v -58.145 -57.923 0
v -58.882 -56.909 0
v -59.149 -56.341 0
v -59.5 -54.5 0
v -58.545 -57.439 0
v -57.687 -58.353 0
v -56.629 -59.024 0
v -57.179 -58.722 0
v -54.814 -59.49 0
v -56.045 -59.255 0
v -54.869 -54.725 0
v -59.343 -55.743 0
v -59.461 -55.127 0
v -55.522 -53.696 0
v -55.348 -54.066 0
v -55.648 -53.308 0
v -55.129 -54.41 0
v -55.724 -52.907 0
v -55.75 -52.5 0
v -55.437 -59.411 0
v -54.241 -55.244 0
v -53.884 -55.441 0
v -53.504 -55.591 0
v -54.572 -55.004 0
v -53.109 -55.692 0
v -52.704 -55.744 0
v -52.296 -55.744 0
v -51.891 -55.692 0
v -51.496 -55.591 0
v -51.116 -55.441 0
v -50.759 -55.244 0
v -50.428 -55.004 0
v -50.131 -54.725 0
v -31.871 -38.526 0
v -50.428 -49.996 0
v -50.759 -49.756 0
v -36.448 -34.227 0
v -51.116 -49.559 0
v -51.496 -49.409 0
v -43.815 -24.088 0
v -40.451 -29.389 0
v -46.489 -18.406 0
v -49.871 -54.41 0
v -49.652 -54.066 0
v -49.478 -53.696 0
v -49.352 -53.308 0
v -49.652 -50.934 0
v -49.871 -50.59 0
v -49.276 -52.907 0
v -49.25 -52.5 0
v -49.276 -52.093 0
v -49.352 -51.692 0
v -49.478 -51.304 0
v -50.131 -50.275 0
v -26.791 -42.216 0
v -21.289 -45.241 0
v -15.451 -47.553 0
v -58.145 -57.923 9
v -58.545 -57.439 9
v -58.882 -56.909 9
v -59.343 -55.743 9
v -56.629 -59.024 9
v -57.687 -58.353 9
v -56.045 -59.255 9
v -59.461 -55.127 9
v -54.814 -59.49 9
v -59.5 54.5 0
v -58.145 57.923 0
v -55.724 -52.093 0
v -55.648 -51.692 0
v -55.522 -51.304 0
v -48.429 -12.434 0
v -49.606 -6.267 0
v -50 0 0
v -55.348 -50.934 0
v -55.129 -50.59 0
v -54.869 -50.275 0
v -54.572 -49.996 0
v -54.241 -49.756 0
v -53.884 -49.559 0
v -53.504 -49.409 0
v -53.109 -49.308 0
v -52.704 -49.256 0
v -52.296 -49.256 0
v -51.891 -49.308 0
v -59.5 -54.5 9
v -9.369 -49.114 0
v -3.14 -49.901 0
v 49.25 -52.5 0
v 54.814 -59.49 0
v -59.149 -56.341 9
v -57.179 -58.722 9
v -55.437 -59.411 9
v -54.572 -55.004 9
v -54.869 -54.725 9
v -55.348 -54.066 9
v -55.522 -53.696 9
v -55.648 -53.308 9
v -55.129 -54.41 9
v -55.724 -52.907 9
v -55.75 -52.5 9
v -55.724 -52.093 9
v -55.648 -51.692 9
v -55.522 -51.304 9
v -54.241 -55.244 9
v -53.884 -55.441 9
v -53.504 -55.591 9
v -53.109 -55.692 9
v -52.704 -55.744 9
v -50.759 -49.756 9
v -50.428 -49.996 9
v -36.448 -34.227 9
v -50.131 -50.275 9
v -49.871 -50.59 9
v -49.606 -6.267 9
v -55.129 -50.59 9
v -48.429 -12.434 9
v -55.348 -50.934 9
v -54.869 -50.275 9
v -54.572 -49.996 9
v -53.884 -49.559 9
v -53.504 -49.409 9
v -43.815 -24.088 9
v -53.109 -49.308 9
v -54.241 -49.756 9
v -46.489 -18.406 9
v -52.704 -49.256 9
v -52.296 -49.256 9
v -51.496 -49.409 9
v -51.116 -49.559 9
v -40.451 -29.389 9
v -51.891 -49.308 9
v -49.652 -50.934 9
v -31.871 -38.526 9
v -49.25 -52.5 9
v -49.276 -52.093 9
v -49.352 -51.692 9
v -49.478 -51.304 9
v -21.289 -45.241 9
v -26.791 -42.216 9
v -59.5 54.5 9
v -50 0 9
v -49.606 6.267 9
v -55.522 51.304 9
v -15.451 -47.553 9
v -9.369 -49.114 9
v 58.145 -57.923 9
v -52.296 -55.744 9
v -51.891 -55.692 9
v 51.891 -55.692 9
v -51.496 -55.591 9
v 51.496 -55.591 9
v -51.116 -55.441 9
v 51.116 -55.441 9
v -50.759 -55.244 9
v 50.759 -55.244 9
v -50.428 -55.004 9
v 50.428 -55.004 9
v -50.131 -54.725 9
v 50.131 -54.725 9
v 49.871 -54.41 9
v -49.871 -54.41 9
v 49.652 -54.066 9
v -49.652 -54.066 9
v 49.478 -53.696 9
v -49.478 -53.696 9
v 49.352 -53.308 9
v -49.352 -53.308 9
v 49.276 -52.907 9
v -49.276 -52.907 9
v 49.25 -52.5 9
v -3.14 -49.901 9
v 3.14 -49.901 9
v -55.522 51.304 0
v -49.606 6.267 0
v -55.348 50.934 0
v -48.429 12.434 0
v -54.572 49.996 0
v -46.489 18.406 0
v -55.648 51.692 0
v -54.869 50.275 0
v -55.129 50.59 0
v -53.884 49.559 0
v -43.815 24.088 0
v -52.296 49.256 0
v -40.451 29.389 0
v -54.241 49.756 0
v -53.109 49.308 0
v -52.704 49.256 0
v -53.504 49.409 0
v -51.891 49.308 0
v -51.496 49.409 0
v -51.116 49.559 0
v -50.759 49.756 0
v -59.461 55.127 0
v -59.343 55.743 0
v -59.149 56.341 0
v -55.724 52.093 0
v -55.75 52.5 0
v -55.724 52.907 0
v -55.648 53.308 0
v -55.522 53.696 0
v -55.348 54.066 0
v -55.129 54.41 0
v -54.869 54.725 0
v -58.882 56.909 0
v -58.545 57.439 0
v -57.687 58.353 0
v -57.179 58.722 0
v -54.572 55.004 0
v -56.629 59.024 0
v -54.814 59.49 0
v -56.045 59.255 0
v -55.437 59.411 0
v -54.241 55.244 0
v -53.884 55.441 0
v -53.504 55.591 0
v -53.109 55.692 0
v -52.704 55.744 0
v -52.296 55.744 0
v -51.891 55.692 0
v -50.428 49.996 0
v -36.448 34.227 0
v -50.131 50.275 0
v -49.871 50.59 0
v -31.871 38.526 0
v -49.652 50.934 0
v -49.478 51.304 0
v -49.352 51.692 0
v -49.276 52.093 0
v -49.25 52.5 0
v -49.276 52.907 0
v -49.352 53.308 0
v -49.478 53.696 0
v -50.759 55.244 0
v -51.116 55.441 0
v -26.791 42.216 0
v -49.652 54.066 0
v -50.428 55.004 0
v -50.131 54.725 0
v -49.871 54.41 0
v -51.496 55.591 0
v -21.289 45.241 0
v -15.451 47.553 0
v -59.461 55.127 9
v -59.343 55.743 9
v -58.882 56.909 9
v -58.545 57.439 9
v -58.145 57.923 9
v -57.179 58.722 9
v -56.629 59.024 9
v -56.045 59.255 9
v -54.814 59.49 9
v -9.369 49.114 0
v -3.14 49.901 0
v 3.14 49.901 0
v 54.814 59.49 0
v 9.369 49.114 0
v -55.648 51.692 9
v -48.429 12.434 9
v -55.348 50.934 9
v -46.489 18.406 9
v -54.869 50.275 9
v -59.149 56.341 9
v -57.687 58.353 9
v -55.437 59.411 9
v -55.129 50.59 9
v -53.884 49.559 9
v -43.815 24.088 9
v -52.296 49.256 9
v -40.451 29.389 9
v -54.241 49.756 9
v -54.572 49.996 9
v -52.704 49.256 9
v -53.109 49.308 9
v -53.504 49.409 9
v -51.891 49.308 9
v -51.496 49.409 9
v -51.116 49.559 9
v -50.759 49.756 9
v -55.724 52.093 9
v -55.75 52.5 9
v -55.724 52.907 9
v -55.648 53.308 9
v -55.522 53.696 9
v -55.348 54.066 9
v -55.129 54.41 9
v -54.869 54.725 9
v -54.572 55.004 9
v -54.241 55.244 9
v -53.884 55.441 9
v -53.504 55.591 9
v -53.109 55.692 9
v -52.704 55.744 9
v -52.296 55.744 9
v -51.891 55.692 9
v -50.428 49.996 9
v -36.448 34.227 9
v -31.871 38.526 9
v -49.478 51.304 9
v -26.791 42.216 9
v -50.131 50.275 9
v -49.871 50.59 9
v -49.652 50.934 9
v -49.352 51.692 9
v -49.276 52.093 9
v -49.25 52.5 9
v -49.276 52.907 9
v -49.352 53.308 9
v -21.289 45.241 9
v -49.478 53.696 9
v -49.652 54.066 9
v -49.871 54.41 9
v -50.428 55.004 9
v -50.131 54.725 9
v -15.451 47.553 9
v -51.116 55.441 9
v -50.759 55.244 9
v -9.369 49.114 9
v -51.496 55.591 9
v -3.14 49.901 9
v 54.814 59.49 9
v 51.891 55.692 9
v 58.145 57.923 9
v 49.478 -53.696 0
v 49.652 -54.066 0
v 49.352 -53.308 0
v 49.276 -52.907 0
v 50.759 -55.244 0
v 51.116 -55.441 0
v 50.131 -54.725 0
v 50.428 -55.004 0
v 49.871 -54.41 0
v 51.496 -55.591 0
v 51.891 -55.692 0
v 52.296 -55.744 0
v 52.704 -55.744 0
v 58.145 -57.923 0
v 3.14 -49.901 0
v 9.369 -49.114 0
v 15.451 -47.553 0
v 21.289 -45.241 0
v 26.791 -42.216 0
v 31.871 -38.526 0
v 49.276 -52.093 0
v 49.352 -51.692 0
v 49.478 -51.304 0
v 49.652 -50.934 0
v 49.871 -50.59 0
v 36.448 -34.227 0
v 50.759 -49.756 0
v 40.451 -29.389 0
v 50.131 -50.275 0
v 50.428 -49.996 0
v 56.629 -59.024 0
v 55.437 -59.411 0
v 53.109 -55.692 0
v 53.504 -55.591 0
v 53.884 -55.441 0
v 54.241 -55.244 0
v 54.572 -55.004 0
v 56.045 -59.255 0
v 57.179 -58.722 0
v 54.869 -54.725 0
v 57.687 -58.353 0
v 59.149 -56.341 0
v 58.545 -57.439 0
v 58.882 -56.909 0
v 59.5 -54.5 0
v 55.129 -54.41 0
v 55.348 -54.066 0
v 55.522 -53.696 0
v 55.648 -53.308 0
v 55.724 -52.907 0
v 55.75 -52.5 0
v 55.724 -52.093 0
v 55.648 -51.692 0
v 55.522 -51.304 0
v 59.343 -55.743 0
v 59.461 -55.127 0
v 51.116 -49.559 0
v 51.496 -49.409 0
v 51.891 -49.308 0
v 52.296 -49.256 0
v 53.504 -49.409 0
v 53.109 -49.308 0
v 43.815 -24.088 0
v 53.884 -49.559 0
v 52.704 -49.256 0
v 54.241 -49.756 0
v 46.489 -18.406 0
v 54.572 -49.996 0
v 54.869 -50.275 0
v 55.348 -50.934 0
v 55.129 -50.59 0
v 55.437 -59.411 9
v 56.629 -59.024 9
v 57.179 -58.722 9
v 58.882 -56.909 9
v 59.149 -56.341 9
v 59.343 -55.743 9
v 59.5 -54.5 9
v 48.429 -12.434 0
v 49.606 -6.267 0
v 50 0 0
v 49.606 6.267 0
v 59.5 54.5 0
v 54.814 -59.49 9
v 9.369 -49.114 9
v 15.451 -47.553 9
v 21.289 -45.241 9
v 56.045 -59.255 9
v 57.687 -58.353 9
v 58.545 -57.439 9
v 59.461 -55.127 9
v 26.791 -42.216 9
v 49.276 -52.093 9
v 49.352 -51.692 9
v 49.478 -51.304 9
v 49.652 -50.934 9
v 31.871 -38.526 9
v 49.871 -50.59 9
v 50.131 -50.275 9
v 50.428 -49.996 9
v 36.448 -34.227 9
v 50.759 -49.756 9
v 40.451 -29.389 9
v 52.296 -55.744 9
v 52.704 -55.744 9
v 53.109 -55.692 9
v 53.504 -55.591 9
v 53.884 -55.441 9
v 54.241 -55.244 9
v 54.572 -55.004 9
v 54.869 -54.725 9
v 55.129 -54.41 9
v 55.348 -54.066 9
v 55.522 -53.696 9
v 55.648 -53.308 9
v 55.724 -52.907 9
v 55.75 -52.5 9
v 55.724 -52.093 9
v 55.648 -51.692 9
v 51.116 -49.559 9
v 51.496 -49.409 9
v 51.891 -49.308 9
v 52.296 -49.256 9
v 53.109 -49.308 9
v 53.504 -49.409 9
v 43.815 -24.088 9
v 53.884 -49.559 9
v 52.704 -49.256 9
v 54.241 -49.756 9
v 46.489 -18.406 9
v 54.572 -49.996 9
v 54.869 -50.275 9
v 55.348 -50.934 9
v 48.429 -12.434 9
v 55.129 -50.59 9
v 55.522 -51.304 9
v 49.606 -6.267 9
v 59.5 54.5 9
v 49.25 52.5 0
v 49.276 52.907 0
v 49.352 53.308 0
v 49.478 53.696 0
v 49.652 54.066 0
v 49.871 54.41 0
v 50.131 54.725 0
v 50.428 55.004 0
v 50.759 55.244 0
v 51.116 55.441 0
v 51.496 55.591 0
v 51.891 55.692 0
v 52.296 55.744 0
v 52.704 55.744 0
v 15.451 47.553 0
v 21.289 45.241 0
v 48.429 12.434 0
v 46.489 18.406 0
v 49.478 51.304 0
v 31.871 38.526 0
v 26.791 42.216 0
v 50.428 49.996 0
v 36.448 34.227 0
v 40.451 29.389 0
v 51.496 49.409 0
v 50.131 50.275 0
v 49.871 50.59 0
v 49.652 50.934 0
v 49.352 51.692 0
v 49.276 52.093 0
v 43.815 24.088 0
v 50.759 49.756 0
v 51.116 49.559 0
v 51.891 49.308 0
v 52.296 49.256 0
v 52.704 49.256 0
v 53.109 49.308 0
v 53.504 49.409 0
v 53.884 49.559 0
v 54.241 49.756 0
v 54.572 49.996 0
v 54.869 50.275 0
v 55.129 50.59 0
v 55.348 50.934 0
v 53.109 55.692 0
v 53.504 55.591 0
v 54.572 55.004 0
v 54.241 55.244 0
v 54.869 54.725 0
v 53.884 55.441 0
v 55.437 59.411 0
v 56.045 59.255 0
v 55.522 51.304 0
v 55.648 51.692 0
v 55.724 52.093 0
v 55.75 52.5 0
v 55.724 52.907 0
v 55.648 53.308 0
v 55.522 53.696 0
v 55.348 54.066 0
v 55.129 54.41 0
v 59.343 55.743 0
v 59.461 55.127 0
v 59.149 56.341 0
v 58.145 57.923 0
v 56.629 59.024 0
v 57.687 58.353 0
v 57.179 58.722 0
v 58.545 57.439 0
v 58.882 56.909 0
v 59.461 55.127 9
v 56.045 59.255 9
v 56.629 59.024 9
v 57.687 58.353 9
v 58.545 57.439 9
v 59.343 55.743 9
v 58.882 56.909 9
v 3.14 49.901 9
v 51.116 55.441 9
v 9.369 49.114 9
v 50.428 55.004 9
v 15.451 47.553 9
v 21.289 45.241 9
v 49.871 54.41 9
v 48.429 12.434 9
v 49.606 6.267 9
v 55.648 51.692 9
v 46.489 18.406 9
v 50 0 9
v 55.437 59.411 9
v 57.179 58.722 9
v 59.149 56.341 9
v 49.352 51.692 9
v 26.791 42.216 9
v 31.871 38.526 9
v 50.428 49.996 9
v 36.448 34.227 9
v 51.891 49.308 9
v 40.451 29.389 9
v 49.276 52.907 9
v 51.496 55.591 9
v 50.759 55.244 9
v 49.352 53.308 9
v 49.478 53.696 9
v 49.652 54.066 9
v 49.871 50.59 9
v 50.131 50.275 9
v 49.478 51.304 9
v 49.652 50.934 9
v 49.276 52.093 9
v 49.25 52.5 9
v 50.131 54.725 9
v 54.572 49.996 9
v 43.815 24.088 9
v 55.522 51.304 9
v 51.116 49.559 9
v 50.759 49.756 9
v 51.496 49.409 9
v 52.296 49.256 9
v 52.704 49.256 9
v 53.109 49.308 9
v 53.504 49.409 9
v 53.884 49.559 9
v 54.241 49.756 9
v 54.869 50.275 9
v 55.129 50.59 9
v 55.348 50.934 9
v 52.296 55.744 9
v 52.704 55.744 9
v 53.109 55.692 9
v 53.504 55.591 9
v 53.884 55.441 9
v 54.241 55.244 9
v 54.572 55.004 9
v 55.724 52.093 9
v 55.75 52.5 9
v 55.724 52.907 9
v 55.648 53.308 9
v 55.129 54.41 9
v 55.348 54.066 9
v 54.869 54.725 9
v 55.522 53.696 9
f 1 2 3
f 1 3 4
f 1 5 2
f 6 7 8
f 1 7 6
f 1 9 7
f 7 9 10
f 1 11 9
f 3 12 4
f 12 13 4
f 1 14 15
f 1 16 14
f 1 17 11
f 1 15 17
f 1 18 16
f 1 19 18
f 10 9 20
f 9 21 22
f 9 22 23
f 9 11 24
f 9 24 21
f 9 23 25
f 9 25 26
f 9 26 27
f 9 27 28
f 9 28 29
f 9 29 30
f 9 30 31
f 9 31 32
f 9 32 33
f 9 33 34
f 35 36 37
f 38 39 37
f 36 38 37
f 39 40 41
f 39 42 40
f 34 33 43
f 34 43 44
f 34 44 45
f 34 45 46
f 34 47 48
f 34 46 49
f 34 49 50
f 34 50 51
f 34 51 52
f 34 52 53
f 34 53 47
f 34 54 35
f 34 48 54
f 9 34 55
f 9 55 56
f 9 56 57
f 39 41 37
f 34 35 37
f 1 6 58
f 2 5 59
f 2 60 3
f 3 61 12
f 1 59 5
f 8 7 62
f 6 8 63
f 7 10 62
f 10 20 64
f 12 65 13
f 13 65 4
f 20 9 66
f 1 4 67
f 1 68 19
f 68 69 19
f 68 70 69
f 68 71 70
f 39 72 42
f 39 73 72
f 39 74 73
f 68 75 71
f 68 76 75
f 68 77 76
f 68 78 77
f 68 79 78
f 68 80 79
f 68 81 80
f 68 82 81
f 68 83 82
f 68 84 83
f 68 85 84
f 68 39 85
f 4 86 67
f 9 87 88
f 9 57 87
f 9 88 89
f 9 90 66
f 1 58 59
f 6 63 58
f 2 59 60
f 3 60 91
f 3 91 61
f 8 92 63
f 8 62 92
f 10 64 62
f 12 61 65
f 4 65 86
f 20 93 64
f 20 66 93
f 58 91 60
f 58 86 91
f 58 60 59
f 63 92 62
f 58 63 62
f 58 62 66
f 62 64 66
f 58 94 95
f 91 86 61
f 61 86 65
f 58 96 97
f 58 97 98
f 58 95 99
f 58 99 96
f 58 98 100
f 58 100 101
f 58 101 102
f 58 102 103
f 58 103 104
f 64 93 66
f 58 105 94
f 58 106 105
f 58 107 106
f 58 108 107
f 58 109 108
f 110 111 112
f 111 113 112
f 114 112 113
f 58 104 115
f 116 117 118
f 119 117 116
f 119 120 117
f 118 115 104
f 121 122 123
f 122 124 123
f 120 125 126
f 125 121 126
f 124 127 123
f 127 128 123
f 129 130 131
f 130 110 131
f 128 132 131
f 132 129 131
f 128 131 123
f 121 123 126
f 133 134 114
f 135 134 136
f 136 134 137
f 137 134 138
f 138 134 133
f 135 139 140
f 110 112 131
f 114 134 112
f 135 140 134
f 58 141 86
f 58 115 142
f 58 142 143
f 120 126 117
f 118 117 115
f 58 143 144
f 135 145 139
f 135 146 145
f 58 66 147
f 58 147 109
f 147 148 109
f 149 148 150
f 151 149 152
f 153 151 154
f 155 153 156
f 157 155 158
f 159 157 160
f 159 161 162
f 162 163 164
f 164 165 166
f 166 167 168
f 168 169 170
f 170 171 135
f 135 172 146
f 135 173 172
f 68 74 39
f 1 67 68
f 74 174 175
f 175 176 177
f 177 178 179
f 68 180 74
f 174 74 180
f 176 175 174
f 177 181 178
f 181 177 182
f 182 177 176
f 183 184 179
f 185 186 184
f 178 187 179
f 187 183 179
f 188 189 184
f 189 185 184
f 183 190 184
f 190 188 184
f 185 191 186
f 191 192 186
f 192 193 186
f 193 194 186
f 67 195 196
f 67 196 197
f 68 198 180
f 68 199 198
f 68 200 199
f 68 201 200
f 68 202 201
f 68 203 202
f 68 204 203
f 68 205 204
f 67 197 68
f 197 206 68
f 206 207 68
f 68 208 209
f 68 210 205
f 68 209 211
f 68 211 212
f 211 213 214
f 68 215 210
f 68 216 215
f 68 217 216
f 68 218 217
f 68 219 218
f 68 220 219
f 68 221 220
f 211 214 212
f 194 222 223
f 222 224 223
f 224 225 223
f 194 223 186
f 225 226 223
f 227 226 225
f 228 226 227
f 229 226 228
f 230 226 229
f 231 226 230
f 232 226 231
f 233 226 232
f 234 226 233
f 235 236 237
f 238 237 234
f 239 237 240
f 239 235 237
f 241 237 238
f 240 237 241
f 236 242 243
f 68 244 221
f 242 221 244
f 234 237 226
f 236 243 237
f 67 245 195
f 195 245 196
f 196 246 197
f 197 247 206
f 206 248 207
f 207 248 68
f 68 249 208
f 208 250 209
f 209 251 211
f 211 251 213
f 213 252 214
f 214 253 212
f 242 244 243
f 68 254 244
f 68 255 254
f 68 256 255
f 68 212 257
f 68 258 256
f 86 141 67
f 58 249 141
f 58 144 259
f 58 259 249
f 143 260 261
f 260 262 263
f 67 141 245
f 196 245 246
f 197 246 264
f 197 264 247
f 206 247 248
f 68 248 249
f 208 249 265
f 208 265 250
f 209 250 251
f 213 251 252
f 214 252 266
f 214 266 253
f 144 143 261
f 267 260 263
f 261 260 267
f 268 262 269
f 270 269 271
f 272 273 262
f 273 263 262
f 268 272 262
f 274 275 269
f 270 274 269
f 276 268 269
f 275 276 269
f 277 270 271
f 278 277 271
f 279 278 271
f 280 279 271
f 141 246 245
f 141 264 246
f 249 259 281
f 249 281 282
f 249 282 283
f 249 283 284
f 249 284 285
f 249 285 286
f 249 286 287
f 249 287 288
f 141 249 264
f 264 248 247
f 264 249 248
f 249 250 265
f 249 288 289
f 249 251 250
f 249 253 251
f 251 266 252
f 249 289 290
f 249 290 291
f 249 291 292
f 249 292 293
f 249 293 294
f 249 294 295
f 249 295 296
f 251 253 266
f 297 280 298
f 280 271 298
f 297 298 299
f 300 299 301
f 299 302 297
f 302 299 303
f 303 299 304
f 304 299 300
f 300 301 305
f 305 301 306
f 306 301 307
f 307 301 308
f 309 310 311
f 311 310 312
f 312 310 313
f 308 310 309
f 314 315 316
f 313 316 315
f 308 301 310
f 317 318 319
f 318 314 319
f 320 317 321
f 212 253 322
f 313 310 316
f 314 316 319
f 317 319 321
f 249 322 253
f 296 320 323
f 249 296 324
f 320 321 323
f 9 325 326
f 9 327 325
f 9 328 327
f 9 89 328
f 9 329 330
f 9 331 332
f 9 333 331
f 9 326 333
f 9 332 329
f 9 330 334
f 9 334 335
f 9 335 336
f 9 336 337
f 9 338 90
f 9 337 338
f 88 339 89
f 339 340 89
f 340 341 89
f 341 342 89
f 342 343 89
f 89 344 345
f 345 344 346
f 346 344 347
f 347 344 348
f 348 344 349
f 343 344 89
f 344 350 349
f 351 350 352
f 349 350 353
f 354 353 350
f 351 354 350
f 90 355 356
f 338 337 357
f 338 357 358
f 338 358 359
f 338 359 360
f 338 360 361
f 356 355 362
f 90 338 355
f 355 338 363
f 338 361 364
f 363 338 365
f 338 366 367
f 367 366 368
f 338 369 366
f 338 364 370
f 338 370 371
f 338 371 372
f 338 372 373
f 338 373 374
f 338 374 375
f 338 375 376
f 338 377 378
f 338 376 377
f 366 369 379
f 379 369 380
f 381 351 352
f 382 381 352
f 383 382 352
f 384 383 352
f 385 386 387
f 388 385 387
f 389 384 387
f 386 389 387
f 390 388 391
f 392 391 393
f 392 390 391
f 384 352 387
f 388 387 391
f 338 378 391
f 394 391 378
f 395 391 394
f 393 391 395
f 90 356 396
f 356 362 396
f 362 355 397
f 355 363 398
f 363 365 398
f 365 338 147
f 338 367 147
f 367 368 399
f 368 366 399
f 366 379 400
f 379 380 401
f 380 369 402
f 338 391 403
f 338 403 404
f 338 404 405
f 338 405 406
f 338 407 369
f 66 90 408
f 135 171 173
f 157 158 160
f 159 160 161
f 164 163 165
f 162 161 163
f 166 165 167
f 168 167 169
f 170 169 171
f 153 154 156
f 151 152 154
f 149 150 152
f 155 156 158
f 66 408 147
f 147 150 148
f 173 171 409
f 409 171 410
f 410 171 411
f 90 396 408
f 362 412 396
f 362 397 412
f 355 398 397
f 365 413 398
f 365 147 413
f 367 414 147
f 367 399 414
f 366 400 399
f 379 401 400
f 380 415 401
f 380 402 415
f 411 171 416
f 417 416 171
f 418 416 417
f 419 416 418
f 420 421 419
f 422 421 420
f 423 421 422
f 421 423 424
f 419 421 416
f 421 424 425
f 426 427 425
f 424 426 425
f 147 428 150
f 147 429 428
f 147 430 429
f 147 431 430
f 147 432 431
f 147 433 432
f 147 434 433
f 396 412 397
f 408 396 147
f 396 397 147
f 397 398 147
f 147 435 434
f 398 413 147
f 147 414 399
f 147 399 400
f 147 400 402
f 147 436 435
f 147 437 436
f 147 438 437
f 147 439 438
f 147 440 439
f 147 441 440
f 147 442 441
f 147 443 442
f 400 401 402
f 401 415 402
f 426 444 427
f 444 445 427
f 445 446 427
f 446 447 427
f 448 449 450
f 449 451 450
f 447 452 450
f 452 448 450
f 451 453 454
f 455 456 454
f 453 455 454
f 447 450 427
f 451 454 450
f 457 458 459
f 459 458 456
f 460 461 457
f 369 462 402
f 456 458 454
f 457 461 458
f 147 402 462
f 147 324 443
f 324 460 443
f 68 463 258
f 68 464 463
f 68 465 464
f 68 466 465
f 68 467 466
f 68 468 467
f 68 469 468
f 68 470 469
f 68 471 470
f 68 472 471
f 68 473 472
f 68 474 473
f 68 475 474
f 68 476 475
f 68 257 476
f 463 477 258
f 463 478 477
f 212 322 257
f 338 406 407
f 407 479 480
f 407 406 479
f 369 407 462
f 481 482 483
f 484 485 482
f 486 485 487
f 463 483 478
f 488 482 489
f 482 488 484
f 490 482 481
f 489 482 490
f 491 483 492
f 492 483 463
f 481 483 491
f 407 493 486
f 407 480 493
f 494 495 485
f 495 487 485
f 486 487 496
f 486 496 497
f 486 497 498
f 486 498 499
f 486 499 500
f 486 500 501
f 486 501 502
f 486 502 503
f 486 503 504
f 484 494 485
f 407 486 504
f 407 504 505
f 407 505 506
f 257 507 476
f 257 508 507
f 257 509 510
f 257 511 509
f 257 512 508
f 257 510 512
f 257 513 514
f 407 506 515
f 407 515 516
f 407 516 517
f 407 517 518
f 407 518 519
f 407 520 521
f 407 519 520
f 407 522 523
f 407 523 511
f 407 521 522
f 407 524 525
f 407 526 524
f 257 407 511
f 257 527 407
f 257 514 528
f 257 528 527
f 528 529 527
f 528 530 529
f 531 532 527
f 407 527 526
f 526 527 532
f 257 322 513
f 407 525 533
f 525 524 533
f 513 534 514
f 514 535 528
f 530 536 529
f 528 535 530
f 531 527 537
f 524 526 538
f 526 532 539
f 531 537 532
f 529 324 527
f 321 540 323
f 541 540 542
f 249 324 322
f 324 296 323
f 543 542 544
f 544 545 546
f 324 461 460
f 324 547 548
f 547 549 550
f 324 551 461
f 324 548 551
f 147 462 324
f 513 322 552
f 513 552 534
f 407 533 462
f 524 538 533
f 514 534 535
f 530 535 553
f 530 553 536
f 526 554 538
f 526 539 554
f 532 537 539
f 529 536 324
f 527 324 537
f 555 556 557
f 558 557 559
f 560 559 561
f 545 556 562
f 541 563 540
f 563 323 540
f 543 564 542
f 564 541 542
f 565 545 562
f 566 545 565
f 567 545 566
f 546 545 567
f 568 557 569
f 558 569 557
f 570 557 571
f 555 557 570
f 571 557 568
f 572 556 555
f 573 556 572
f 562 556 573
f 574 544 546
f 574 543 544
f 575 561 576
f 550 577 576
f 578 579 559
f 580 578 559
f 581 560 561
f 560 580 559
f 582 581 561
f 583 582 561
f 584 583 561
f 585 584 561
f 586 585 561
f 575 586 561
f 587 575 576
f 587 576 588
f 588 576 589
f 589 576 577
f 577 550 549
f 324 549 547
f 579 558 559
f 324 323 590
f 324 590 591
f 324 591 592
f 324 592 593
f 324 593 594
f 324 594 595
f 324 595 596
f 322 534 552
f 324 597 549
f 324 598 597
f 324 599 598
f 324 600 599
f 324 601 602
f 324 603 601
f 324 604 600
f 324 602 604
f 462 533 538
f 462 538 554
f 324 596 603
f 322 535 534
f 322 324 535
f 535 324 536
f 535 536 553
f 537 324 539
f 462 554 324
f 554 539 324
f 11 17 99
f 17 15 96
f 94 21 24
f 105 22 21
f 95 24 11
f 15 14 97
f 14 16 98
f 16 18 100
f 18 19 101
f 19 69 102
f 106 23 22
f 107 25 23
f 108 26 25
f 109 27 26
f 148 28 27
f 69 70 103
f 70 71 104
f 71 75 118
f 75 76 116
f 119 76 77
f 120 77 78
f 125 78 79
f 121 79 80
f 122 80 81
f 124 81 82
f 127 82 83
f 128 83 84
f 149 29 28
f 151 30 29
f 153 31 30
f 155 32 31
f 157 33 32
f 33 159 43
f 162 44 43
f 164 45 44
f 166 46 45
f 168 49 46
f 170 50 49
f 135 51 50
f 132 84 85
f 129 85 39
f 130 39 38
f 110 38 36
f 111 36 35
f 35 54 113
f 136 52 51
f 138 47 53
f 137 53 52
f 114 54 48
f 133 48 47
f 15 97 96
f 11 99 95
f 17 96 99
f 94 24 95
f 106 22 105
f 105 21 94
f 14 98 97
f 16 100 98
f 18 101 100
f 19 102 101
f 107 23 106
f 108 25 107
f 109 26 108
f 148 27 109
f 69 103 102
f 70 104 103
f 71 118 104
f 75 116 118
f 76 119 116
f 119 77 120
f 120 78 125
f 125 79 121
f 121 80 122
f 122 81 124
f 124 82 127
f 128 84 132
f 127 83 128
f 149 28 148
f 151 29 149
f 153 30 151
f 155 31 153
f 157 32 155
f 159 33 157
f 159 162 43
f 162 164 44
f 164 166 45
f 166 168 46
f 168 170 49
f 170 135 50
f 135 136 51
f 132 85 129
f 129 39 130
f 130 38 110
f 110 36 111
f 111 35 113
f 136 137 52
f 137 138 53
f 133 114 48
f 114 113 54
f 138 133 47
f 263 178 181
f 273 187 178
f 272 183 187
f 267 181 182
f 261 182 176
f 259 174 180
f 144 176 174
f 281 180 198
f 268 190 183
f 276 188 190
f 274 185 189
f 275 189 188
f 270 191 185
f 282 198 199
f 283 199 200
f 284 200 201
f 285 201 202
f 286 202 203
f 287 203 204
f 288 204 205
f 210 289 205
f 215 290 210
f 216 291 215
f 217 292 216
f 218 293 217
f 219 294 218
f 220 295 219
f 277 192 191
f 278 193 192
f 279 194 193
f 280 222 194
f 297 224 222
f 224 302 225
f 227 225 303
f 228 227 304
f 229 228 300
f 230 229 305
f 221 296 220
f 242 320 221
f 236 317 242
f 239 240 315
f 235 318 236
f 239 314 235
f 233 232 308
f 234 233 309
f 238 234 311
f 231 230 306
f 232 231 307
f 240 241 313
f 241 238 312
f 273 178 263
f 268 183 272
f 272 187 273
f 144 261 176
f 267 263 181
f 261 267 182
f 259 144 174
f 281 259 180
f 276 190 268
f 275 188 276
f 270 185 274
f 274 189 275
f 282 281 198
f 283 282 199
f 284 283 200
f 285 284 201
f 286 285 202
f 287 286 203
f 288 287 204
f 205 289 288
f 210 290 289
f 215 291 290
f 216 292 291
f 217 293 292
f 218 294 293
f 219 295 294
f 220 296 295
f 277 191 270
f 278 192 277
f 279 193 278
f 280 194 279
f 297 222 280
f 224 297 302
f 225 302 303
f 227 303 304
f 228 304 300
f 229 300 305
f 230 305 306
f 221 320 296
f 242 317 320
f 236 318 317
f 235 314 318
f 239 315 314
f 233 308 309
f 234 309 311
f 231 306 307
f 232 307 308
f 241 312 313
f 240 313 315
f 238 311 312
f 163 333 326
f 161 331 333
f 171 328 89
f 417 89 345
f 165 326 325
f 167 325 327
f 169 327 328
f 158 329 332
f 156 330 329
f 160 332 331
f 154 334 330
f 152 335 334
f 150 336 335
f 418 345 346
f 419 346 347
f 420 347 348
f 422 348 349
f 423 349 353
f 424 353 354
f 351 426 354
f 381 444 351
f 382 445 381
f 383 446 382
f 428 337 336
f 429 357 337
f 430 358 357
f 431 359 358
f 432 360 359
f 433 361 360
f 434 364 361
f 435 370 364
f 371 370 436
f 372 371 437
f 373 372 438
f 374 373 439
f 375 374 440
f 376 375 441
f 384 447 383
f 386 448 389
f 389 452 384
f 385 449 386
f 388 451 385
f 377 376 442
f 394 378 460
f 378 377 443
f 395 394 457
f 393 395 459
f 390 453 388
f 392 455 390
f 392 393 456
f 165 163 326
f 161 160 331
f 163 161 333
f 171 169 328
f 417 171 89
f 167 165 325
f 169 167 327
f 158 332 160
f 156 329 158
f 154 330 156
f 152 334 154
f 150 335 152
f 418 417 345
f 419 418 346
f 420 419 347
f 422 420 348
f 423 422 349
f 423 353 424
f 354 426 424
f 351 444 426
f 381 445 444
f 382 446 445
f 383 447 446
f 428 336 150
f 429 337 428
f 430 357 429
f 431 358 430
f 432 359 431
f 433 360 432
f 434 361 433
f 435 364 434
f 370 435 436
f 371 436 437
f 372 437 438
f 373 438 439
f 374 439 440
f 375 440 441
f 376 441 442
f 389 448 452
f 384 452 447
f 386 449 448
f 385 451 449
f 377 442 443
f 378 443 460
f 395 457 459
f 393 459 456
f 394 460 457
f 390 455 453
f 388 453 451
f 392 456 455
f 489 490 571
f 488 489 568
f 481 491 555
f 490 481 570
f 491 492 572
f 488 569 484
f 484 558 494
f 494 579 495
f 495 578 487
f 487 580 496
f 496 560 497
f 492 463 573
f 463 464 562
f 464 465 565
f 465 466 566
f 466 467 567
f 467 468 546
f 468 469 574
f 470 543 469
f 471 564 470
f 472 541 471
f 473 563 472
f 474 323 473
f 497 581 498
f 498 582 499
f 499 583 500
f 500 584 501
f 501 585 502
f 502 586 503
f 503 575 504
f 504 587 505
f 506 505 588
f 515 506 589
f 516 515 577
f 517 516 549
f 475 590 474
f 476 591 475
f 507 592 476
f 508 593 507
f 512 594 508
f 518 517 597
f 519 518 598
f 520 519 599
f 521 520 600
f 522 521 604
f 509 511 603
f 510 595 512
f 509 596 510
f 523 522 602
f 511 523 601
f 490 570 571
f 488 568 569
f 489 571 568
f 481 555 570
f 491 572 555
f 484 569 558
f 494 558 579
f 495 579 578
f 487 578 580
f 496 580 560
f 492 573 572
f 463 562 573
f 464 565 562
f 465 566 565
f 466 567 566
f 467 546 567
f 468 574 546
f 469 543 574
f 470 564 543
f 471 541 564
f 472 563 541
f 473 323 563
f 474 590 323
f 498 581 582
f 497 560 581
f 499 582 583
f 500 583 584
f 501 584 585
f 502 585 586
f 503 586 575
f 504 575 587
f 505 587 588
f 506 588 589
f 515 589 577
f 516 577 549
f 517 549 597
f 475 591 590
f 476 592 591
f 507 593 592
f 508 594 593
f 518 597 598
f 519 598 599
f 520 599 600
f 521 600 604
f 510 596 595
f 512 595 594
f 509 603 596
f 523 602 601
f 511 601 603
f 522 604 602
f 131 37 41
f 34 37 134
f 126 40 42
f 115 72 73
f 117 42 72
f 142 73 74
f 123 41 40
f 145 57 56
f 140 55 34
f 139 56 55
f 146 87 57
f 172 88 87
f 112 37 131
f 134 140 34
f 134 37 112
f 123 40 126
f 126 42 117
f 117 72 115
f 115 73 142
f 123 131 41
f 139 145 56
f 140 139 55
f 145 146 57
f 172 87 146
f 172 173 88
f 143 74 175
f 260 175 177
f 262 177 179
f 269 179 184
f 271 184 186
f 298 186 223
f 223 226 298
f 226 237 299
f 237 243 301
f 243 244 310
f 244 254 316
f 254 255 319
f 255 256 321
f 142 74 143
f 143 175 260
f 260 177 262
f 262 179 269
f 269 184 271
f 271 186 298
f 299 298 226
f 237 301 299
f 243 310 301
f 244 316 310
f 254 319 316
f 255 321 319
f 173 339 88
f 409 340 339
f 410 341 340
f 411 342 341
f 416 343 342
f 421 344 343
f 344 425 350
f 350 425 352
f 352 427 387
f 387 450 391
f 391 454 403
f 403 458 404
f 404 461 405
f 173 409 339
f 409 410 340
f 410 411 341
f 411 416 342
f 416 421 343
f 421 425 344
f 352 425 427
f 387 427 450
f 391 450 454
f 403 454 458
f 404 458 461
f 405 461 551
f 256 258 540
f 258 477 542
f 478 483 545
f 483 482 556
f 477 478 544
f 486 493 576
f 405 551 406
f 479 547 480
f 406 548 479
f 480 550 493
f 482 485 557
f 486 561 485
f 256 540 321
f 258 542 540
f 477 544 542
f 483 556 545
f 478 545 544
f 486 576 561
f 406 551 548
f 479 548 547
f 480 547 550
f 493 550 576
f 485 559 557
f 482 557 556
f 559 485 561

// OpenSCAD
$fn = 50;

difference() {
	union() {
		hull() {
			translate(v = [-54.5, 54.5, 0]) {
				cylinder(h = 9, r = 5);
			}
			translate(v = [54.5, 54.5, 0]) {
				cylinder(h = 9, r = 5);
			}
			translate(v = [-54.5, -54.5, 0]) {
				cylinder(h = 9, r = 5);
			}
			translate(v = [54.5, -54.5, 0]) {
				cylinder(h = 9, r = 5);
			}
		}
	}
	union() {
		translate(v = [-52.5, -52.5, -100.0]) {
			cylinder(h = 200, r = 3.25);
		}
		translate(v = [-52.5, 52.5, -100.0]) {
			cylinder(h = 200, r = 3.25);
		}
		translate(v = [52.5, -52.5, -100.0]) {
			cylinder(h = 200, r = 3.25);
		}
		translate(v = [52.5, 52.5, -100.0]) {
			cylinder(h = 200, r = 3.25);
		}
		translate(v = [-52.5, -52.5, -100.0]) {
			cylinder(h = 200, r = 1.8);
		}
		translate(v = [-52.5, 52.5, -100.0]) {
			cylinder(h = 200, r = 1.8);
		}
		translate(v = [52.5, -52.5, -100.0]) {
			cylinder(h = 200, r = 1.8);
		}
		translate(v = [52.5, 52.5, -100.0]) {
			cylinder(h = 200, r = 1.8);
		}
		cylinder(h = 9, r = 50.0);
	}
}
